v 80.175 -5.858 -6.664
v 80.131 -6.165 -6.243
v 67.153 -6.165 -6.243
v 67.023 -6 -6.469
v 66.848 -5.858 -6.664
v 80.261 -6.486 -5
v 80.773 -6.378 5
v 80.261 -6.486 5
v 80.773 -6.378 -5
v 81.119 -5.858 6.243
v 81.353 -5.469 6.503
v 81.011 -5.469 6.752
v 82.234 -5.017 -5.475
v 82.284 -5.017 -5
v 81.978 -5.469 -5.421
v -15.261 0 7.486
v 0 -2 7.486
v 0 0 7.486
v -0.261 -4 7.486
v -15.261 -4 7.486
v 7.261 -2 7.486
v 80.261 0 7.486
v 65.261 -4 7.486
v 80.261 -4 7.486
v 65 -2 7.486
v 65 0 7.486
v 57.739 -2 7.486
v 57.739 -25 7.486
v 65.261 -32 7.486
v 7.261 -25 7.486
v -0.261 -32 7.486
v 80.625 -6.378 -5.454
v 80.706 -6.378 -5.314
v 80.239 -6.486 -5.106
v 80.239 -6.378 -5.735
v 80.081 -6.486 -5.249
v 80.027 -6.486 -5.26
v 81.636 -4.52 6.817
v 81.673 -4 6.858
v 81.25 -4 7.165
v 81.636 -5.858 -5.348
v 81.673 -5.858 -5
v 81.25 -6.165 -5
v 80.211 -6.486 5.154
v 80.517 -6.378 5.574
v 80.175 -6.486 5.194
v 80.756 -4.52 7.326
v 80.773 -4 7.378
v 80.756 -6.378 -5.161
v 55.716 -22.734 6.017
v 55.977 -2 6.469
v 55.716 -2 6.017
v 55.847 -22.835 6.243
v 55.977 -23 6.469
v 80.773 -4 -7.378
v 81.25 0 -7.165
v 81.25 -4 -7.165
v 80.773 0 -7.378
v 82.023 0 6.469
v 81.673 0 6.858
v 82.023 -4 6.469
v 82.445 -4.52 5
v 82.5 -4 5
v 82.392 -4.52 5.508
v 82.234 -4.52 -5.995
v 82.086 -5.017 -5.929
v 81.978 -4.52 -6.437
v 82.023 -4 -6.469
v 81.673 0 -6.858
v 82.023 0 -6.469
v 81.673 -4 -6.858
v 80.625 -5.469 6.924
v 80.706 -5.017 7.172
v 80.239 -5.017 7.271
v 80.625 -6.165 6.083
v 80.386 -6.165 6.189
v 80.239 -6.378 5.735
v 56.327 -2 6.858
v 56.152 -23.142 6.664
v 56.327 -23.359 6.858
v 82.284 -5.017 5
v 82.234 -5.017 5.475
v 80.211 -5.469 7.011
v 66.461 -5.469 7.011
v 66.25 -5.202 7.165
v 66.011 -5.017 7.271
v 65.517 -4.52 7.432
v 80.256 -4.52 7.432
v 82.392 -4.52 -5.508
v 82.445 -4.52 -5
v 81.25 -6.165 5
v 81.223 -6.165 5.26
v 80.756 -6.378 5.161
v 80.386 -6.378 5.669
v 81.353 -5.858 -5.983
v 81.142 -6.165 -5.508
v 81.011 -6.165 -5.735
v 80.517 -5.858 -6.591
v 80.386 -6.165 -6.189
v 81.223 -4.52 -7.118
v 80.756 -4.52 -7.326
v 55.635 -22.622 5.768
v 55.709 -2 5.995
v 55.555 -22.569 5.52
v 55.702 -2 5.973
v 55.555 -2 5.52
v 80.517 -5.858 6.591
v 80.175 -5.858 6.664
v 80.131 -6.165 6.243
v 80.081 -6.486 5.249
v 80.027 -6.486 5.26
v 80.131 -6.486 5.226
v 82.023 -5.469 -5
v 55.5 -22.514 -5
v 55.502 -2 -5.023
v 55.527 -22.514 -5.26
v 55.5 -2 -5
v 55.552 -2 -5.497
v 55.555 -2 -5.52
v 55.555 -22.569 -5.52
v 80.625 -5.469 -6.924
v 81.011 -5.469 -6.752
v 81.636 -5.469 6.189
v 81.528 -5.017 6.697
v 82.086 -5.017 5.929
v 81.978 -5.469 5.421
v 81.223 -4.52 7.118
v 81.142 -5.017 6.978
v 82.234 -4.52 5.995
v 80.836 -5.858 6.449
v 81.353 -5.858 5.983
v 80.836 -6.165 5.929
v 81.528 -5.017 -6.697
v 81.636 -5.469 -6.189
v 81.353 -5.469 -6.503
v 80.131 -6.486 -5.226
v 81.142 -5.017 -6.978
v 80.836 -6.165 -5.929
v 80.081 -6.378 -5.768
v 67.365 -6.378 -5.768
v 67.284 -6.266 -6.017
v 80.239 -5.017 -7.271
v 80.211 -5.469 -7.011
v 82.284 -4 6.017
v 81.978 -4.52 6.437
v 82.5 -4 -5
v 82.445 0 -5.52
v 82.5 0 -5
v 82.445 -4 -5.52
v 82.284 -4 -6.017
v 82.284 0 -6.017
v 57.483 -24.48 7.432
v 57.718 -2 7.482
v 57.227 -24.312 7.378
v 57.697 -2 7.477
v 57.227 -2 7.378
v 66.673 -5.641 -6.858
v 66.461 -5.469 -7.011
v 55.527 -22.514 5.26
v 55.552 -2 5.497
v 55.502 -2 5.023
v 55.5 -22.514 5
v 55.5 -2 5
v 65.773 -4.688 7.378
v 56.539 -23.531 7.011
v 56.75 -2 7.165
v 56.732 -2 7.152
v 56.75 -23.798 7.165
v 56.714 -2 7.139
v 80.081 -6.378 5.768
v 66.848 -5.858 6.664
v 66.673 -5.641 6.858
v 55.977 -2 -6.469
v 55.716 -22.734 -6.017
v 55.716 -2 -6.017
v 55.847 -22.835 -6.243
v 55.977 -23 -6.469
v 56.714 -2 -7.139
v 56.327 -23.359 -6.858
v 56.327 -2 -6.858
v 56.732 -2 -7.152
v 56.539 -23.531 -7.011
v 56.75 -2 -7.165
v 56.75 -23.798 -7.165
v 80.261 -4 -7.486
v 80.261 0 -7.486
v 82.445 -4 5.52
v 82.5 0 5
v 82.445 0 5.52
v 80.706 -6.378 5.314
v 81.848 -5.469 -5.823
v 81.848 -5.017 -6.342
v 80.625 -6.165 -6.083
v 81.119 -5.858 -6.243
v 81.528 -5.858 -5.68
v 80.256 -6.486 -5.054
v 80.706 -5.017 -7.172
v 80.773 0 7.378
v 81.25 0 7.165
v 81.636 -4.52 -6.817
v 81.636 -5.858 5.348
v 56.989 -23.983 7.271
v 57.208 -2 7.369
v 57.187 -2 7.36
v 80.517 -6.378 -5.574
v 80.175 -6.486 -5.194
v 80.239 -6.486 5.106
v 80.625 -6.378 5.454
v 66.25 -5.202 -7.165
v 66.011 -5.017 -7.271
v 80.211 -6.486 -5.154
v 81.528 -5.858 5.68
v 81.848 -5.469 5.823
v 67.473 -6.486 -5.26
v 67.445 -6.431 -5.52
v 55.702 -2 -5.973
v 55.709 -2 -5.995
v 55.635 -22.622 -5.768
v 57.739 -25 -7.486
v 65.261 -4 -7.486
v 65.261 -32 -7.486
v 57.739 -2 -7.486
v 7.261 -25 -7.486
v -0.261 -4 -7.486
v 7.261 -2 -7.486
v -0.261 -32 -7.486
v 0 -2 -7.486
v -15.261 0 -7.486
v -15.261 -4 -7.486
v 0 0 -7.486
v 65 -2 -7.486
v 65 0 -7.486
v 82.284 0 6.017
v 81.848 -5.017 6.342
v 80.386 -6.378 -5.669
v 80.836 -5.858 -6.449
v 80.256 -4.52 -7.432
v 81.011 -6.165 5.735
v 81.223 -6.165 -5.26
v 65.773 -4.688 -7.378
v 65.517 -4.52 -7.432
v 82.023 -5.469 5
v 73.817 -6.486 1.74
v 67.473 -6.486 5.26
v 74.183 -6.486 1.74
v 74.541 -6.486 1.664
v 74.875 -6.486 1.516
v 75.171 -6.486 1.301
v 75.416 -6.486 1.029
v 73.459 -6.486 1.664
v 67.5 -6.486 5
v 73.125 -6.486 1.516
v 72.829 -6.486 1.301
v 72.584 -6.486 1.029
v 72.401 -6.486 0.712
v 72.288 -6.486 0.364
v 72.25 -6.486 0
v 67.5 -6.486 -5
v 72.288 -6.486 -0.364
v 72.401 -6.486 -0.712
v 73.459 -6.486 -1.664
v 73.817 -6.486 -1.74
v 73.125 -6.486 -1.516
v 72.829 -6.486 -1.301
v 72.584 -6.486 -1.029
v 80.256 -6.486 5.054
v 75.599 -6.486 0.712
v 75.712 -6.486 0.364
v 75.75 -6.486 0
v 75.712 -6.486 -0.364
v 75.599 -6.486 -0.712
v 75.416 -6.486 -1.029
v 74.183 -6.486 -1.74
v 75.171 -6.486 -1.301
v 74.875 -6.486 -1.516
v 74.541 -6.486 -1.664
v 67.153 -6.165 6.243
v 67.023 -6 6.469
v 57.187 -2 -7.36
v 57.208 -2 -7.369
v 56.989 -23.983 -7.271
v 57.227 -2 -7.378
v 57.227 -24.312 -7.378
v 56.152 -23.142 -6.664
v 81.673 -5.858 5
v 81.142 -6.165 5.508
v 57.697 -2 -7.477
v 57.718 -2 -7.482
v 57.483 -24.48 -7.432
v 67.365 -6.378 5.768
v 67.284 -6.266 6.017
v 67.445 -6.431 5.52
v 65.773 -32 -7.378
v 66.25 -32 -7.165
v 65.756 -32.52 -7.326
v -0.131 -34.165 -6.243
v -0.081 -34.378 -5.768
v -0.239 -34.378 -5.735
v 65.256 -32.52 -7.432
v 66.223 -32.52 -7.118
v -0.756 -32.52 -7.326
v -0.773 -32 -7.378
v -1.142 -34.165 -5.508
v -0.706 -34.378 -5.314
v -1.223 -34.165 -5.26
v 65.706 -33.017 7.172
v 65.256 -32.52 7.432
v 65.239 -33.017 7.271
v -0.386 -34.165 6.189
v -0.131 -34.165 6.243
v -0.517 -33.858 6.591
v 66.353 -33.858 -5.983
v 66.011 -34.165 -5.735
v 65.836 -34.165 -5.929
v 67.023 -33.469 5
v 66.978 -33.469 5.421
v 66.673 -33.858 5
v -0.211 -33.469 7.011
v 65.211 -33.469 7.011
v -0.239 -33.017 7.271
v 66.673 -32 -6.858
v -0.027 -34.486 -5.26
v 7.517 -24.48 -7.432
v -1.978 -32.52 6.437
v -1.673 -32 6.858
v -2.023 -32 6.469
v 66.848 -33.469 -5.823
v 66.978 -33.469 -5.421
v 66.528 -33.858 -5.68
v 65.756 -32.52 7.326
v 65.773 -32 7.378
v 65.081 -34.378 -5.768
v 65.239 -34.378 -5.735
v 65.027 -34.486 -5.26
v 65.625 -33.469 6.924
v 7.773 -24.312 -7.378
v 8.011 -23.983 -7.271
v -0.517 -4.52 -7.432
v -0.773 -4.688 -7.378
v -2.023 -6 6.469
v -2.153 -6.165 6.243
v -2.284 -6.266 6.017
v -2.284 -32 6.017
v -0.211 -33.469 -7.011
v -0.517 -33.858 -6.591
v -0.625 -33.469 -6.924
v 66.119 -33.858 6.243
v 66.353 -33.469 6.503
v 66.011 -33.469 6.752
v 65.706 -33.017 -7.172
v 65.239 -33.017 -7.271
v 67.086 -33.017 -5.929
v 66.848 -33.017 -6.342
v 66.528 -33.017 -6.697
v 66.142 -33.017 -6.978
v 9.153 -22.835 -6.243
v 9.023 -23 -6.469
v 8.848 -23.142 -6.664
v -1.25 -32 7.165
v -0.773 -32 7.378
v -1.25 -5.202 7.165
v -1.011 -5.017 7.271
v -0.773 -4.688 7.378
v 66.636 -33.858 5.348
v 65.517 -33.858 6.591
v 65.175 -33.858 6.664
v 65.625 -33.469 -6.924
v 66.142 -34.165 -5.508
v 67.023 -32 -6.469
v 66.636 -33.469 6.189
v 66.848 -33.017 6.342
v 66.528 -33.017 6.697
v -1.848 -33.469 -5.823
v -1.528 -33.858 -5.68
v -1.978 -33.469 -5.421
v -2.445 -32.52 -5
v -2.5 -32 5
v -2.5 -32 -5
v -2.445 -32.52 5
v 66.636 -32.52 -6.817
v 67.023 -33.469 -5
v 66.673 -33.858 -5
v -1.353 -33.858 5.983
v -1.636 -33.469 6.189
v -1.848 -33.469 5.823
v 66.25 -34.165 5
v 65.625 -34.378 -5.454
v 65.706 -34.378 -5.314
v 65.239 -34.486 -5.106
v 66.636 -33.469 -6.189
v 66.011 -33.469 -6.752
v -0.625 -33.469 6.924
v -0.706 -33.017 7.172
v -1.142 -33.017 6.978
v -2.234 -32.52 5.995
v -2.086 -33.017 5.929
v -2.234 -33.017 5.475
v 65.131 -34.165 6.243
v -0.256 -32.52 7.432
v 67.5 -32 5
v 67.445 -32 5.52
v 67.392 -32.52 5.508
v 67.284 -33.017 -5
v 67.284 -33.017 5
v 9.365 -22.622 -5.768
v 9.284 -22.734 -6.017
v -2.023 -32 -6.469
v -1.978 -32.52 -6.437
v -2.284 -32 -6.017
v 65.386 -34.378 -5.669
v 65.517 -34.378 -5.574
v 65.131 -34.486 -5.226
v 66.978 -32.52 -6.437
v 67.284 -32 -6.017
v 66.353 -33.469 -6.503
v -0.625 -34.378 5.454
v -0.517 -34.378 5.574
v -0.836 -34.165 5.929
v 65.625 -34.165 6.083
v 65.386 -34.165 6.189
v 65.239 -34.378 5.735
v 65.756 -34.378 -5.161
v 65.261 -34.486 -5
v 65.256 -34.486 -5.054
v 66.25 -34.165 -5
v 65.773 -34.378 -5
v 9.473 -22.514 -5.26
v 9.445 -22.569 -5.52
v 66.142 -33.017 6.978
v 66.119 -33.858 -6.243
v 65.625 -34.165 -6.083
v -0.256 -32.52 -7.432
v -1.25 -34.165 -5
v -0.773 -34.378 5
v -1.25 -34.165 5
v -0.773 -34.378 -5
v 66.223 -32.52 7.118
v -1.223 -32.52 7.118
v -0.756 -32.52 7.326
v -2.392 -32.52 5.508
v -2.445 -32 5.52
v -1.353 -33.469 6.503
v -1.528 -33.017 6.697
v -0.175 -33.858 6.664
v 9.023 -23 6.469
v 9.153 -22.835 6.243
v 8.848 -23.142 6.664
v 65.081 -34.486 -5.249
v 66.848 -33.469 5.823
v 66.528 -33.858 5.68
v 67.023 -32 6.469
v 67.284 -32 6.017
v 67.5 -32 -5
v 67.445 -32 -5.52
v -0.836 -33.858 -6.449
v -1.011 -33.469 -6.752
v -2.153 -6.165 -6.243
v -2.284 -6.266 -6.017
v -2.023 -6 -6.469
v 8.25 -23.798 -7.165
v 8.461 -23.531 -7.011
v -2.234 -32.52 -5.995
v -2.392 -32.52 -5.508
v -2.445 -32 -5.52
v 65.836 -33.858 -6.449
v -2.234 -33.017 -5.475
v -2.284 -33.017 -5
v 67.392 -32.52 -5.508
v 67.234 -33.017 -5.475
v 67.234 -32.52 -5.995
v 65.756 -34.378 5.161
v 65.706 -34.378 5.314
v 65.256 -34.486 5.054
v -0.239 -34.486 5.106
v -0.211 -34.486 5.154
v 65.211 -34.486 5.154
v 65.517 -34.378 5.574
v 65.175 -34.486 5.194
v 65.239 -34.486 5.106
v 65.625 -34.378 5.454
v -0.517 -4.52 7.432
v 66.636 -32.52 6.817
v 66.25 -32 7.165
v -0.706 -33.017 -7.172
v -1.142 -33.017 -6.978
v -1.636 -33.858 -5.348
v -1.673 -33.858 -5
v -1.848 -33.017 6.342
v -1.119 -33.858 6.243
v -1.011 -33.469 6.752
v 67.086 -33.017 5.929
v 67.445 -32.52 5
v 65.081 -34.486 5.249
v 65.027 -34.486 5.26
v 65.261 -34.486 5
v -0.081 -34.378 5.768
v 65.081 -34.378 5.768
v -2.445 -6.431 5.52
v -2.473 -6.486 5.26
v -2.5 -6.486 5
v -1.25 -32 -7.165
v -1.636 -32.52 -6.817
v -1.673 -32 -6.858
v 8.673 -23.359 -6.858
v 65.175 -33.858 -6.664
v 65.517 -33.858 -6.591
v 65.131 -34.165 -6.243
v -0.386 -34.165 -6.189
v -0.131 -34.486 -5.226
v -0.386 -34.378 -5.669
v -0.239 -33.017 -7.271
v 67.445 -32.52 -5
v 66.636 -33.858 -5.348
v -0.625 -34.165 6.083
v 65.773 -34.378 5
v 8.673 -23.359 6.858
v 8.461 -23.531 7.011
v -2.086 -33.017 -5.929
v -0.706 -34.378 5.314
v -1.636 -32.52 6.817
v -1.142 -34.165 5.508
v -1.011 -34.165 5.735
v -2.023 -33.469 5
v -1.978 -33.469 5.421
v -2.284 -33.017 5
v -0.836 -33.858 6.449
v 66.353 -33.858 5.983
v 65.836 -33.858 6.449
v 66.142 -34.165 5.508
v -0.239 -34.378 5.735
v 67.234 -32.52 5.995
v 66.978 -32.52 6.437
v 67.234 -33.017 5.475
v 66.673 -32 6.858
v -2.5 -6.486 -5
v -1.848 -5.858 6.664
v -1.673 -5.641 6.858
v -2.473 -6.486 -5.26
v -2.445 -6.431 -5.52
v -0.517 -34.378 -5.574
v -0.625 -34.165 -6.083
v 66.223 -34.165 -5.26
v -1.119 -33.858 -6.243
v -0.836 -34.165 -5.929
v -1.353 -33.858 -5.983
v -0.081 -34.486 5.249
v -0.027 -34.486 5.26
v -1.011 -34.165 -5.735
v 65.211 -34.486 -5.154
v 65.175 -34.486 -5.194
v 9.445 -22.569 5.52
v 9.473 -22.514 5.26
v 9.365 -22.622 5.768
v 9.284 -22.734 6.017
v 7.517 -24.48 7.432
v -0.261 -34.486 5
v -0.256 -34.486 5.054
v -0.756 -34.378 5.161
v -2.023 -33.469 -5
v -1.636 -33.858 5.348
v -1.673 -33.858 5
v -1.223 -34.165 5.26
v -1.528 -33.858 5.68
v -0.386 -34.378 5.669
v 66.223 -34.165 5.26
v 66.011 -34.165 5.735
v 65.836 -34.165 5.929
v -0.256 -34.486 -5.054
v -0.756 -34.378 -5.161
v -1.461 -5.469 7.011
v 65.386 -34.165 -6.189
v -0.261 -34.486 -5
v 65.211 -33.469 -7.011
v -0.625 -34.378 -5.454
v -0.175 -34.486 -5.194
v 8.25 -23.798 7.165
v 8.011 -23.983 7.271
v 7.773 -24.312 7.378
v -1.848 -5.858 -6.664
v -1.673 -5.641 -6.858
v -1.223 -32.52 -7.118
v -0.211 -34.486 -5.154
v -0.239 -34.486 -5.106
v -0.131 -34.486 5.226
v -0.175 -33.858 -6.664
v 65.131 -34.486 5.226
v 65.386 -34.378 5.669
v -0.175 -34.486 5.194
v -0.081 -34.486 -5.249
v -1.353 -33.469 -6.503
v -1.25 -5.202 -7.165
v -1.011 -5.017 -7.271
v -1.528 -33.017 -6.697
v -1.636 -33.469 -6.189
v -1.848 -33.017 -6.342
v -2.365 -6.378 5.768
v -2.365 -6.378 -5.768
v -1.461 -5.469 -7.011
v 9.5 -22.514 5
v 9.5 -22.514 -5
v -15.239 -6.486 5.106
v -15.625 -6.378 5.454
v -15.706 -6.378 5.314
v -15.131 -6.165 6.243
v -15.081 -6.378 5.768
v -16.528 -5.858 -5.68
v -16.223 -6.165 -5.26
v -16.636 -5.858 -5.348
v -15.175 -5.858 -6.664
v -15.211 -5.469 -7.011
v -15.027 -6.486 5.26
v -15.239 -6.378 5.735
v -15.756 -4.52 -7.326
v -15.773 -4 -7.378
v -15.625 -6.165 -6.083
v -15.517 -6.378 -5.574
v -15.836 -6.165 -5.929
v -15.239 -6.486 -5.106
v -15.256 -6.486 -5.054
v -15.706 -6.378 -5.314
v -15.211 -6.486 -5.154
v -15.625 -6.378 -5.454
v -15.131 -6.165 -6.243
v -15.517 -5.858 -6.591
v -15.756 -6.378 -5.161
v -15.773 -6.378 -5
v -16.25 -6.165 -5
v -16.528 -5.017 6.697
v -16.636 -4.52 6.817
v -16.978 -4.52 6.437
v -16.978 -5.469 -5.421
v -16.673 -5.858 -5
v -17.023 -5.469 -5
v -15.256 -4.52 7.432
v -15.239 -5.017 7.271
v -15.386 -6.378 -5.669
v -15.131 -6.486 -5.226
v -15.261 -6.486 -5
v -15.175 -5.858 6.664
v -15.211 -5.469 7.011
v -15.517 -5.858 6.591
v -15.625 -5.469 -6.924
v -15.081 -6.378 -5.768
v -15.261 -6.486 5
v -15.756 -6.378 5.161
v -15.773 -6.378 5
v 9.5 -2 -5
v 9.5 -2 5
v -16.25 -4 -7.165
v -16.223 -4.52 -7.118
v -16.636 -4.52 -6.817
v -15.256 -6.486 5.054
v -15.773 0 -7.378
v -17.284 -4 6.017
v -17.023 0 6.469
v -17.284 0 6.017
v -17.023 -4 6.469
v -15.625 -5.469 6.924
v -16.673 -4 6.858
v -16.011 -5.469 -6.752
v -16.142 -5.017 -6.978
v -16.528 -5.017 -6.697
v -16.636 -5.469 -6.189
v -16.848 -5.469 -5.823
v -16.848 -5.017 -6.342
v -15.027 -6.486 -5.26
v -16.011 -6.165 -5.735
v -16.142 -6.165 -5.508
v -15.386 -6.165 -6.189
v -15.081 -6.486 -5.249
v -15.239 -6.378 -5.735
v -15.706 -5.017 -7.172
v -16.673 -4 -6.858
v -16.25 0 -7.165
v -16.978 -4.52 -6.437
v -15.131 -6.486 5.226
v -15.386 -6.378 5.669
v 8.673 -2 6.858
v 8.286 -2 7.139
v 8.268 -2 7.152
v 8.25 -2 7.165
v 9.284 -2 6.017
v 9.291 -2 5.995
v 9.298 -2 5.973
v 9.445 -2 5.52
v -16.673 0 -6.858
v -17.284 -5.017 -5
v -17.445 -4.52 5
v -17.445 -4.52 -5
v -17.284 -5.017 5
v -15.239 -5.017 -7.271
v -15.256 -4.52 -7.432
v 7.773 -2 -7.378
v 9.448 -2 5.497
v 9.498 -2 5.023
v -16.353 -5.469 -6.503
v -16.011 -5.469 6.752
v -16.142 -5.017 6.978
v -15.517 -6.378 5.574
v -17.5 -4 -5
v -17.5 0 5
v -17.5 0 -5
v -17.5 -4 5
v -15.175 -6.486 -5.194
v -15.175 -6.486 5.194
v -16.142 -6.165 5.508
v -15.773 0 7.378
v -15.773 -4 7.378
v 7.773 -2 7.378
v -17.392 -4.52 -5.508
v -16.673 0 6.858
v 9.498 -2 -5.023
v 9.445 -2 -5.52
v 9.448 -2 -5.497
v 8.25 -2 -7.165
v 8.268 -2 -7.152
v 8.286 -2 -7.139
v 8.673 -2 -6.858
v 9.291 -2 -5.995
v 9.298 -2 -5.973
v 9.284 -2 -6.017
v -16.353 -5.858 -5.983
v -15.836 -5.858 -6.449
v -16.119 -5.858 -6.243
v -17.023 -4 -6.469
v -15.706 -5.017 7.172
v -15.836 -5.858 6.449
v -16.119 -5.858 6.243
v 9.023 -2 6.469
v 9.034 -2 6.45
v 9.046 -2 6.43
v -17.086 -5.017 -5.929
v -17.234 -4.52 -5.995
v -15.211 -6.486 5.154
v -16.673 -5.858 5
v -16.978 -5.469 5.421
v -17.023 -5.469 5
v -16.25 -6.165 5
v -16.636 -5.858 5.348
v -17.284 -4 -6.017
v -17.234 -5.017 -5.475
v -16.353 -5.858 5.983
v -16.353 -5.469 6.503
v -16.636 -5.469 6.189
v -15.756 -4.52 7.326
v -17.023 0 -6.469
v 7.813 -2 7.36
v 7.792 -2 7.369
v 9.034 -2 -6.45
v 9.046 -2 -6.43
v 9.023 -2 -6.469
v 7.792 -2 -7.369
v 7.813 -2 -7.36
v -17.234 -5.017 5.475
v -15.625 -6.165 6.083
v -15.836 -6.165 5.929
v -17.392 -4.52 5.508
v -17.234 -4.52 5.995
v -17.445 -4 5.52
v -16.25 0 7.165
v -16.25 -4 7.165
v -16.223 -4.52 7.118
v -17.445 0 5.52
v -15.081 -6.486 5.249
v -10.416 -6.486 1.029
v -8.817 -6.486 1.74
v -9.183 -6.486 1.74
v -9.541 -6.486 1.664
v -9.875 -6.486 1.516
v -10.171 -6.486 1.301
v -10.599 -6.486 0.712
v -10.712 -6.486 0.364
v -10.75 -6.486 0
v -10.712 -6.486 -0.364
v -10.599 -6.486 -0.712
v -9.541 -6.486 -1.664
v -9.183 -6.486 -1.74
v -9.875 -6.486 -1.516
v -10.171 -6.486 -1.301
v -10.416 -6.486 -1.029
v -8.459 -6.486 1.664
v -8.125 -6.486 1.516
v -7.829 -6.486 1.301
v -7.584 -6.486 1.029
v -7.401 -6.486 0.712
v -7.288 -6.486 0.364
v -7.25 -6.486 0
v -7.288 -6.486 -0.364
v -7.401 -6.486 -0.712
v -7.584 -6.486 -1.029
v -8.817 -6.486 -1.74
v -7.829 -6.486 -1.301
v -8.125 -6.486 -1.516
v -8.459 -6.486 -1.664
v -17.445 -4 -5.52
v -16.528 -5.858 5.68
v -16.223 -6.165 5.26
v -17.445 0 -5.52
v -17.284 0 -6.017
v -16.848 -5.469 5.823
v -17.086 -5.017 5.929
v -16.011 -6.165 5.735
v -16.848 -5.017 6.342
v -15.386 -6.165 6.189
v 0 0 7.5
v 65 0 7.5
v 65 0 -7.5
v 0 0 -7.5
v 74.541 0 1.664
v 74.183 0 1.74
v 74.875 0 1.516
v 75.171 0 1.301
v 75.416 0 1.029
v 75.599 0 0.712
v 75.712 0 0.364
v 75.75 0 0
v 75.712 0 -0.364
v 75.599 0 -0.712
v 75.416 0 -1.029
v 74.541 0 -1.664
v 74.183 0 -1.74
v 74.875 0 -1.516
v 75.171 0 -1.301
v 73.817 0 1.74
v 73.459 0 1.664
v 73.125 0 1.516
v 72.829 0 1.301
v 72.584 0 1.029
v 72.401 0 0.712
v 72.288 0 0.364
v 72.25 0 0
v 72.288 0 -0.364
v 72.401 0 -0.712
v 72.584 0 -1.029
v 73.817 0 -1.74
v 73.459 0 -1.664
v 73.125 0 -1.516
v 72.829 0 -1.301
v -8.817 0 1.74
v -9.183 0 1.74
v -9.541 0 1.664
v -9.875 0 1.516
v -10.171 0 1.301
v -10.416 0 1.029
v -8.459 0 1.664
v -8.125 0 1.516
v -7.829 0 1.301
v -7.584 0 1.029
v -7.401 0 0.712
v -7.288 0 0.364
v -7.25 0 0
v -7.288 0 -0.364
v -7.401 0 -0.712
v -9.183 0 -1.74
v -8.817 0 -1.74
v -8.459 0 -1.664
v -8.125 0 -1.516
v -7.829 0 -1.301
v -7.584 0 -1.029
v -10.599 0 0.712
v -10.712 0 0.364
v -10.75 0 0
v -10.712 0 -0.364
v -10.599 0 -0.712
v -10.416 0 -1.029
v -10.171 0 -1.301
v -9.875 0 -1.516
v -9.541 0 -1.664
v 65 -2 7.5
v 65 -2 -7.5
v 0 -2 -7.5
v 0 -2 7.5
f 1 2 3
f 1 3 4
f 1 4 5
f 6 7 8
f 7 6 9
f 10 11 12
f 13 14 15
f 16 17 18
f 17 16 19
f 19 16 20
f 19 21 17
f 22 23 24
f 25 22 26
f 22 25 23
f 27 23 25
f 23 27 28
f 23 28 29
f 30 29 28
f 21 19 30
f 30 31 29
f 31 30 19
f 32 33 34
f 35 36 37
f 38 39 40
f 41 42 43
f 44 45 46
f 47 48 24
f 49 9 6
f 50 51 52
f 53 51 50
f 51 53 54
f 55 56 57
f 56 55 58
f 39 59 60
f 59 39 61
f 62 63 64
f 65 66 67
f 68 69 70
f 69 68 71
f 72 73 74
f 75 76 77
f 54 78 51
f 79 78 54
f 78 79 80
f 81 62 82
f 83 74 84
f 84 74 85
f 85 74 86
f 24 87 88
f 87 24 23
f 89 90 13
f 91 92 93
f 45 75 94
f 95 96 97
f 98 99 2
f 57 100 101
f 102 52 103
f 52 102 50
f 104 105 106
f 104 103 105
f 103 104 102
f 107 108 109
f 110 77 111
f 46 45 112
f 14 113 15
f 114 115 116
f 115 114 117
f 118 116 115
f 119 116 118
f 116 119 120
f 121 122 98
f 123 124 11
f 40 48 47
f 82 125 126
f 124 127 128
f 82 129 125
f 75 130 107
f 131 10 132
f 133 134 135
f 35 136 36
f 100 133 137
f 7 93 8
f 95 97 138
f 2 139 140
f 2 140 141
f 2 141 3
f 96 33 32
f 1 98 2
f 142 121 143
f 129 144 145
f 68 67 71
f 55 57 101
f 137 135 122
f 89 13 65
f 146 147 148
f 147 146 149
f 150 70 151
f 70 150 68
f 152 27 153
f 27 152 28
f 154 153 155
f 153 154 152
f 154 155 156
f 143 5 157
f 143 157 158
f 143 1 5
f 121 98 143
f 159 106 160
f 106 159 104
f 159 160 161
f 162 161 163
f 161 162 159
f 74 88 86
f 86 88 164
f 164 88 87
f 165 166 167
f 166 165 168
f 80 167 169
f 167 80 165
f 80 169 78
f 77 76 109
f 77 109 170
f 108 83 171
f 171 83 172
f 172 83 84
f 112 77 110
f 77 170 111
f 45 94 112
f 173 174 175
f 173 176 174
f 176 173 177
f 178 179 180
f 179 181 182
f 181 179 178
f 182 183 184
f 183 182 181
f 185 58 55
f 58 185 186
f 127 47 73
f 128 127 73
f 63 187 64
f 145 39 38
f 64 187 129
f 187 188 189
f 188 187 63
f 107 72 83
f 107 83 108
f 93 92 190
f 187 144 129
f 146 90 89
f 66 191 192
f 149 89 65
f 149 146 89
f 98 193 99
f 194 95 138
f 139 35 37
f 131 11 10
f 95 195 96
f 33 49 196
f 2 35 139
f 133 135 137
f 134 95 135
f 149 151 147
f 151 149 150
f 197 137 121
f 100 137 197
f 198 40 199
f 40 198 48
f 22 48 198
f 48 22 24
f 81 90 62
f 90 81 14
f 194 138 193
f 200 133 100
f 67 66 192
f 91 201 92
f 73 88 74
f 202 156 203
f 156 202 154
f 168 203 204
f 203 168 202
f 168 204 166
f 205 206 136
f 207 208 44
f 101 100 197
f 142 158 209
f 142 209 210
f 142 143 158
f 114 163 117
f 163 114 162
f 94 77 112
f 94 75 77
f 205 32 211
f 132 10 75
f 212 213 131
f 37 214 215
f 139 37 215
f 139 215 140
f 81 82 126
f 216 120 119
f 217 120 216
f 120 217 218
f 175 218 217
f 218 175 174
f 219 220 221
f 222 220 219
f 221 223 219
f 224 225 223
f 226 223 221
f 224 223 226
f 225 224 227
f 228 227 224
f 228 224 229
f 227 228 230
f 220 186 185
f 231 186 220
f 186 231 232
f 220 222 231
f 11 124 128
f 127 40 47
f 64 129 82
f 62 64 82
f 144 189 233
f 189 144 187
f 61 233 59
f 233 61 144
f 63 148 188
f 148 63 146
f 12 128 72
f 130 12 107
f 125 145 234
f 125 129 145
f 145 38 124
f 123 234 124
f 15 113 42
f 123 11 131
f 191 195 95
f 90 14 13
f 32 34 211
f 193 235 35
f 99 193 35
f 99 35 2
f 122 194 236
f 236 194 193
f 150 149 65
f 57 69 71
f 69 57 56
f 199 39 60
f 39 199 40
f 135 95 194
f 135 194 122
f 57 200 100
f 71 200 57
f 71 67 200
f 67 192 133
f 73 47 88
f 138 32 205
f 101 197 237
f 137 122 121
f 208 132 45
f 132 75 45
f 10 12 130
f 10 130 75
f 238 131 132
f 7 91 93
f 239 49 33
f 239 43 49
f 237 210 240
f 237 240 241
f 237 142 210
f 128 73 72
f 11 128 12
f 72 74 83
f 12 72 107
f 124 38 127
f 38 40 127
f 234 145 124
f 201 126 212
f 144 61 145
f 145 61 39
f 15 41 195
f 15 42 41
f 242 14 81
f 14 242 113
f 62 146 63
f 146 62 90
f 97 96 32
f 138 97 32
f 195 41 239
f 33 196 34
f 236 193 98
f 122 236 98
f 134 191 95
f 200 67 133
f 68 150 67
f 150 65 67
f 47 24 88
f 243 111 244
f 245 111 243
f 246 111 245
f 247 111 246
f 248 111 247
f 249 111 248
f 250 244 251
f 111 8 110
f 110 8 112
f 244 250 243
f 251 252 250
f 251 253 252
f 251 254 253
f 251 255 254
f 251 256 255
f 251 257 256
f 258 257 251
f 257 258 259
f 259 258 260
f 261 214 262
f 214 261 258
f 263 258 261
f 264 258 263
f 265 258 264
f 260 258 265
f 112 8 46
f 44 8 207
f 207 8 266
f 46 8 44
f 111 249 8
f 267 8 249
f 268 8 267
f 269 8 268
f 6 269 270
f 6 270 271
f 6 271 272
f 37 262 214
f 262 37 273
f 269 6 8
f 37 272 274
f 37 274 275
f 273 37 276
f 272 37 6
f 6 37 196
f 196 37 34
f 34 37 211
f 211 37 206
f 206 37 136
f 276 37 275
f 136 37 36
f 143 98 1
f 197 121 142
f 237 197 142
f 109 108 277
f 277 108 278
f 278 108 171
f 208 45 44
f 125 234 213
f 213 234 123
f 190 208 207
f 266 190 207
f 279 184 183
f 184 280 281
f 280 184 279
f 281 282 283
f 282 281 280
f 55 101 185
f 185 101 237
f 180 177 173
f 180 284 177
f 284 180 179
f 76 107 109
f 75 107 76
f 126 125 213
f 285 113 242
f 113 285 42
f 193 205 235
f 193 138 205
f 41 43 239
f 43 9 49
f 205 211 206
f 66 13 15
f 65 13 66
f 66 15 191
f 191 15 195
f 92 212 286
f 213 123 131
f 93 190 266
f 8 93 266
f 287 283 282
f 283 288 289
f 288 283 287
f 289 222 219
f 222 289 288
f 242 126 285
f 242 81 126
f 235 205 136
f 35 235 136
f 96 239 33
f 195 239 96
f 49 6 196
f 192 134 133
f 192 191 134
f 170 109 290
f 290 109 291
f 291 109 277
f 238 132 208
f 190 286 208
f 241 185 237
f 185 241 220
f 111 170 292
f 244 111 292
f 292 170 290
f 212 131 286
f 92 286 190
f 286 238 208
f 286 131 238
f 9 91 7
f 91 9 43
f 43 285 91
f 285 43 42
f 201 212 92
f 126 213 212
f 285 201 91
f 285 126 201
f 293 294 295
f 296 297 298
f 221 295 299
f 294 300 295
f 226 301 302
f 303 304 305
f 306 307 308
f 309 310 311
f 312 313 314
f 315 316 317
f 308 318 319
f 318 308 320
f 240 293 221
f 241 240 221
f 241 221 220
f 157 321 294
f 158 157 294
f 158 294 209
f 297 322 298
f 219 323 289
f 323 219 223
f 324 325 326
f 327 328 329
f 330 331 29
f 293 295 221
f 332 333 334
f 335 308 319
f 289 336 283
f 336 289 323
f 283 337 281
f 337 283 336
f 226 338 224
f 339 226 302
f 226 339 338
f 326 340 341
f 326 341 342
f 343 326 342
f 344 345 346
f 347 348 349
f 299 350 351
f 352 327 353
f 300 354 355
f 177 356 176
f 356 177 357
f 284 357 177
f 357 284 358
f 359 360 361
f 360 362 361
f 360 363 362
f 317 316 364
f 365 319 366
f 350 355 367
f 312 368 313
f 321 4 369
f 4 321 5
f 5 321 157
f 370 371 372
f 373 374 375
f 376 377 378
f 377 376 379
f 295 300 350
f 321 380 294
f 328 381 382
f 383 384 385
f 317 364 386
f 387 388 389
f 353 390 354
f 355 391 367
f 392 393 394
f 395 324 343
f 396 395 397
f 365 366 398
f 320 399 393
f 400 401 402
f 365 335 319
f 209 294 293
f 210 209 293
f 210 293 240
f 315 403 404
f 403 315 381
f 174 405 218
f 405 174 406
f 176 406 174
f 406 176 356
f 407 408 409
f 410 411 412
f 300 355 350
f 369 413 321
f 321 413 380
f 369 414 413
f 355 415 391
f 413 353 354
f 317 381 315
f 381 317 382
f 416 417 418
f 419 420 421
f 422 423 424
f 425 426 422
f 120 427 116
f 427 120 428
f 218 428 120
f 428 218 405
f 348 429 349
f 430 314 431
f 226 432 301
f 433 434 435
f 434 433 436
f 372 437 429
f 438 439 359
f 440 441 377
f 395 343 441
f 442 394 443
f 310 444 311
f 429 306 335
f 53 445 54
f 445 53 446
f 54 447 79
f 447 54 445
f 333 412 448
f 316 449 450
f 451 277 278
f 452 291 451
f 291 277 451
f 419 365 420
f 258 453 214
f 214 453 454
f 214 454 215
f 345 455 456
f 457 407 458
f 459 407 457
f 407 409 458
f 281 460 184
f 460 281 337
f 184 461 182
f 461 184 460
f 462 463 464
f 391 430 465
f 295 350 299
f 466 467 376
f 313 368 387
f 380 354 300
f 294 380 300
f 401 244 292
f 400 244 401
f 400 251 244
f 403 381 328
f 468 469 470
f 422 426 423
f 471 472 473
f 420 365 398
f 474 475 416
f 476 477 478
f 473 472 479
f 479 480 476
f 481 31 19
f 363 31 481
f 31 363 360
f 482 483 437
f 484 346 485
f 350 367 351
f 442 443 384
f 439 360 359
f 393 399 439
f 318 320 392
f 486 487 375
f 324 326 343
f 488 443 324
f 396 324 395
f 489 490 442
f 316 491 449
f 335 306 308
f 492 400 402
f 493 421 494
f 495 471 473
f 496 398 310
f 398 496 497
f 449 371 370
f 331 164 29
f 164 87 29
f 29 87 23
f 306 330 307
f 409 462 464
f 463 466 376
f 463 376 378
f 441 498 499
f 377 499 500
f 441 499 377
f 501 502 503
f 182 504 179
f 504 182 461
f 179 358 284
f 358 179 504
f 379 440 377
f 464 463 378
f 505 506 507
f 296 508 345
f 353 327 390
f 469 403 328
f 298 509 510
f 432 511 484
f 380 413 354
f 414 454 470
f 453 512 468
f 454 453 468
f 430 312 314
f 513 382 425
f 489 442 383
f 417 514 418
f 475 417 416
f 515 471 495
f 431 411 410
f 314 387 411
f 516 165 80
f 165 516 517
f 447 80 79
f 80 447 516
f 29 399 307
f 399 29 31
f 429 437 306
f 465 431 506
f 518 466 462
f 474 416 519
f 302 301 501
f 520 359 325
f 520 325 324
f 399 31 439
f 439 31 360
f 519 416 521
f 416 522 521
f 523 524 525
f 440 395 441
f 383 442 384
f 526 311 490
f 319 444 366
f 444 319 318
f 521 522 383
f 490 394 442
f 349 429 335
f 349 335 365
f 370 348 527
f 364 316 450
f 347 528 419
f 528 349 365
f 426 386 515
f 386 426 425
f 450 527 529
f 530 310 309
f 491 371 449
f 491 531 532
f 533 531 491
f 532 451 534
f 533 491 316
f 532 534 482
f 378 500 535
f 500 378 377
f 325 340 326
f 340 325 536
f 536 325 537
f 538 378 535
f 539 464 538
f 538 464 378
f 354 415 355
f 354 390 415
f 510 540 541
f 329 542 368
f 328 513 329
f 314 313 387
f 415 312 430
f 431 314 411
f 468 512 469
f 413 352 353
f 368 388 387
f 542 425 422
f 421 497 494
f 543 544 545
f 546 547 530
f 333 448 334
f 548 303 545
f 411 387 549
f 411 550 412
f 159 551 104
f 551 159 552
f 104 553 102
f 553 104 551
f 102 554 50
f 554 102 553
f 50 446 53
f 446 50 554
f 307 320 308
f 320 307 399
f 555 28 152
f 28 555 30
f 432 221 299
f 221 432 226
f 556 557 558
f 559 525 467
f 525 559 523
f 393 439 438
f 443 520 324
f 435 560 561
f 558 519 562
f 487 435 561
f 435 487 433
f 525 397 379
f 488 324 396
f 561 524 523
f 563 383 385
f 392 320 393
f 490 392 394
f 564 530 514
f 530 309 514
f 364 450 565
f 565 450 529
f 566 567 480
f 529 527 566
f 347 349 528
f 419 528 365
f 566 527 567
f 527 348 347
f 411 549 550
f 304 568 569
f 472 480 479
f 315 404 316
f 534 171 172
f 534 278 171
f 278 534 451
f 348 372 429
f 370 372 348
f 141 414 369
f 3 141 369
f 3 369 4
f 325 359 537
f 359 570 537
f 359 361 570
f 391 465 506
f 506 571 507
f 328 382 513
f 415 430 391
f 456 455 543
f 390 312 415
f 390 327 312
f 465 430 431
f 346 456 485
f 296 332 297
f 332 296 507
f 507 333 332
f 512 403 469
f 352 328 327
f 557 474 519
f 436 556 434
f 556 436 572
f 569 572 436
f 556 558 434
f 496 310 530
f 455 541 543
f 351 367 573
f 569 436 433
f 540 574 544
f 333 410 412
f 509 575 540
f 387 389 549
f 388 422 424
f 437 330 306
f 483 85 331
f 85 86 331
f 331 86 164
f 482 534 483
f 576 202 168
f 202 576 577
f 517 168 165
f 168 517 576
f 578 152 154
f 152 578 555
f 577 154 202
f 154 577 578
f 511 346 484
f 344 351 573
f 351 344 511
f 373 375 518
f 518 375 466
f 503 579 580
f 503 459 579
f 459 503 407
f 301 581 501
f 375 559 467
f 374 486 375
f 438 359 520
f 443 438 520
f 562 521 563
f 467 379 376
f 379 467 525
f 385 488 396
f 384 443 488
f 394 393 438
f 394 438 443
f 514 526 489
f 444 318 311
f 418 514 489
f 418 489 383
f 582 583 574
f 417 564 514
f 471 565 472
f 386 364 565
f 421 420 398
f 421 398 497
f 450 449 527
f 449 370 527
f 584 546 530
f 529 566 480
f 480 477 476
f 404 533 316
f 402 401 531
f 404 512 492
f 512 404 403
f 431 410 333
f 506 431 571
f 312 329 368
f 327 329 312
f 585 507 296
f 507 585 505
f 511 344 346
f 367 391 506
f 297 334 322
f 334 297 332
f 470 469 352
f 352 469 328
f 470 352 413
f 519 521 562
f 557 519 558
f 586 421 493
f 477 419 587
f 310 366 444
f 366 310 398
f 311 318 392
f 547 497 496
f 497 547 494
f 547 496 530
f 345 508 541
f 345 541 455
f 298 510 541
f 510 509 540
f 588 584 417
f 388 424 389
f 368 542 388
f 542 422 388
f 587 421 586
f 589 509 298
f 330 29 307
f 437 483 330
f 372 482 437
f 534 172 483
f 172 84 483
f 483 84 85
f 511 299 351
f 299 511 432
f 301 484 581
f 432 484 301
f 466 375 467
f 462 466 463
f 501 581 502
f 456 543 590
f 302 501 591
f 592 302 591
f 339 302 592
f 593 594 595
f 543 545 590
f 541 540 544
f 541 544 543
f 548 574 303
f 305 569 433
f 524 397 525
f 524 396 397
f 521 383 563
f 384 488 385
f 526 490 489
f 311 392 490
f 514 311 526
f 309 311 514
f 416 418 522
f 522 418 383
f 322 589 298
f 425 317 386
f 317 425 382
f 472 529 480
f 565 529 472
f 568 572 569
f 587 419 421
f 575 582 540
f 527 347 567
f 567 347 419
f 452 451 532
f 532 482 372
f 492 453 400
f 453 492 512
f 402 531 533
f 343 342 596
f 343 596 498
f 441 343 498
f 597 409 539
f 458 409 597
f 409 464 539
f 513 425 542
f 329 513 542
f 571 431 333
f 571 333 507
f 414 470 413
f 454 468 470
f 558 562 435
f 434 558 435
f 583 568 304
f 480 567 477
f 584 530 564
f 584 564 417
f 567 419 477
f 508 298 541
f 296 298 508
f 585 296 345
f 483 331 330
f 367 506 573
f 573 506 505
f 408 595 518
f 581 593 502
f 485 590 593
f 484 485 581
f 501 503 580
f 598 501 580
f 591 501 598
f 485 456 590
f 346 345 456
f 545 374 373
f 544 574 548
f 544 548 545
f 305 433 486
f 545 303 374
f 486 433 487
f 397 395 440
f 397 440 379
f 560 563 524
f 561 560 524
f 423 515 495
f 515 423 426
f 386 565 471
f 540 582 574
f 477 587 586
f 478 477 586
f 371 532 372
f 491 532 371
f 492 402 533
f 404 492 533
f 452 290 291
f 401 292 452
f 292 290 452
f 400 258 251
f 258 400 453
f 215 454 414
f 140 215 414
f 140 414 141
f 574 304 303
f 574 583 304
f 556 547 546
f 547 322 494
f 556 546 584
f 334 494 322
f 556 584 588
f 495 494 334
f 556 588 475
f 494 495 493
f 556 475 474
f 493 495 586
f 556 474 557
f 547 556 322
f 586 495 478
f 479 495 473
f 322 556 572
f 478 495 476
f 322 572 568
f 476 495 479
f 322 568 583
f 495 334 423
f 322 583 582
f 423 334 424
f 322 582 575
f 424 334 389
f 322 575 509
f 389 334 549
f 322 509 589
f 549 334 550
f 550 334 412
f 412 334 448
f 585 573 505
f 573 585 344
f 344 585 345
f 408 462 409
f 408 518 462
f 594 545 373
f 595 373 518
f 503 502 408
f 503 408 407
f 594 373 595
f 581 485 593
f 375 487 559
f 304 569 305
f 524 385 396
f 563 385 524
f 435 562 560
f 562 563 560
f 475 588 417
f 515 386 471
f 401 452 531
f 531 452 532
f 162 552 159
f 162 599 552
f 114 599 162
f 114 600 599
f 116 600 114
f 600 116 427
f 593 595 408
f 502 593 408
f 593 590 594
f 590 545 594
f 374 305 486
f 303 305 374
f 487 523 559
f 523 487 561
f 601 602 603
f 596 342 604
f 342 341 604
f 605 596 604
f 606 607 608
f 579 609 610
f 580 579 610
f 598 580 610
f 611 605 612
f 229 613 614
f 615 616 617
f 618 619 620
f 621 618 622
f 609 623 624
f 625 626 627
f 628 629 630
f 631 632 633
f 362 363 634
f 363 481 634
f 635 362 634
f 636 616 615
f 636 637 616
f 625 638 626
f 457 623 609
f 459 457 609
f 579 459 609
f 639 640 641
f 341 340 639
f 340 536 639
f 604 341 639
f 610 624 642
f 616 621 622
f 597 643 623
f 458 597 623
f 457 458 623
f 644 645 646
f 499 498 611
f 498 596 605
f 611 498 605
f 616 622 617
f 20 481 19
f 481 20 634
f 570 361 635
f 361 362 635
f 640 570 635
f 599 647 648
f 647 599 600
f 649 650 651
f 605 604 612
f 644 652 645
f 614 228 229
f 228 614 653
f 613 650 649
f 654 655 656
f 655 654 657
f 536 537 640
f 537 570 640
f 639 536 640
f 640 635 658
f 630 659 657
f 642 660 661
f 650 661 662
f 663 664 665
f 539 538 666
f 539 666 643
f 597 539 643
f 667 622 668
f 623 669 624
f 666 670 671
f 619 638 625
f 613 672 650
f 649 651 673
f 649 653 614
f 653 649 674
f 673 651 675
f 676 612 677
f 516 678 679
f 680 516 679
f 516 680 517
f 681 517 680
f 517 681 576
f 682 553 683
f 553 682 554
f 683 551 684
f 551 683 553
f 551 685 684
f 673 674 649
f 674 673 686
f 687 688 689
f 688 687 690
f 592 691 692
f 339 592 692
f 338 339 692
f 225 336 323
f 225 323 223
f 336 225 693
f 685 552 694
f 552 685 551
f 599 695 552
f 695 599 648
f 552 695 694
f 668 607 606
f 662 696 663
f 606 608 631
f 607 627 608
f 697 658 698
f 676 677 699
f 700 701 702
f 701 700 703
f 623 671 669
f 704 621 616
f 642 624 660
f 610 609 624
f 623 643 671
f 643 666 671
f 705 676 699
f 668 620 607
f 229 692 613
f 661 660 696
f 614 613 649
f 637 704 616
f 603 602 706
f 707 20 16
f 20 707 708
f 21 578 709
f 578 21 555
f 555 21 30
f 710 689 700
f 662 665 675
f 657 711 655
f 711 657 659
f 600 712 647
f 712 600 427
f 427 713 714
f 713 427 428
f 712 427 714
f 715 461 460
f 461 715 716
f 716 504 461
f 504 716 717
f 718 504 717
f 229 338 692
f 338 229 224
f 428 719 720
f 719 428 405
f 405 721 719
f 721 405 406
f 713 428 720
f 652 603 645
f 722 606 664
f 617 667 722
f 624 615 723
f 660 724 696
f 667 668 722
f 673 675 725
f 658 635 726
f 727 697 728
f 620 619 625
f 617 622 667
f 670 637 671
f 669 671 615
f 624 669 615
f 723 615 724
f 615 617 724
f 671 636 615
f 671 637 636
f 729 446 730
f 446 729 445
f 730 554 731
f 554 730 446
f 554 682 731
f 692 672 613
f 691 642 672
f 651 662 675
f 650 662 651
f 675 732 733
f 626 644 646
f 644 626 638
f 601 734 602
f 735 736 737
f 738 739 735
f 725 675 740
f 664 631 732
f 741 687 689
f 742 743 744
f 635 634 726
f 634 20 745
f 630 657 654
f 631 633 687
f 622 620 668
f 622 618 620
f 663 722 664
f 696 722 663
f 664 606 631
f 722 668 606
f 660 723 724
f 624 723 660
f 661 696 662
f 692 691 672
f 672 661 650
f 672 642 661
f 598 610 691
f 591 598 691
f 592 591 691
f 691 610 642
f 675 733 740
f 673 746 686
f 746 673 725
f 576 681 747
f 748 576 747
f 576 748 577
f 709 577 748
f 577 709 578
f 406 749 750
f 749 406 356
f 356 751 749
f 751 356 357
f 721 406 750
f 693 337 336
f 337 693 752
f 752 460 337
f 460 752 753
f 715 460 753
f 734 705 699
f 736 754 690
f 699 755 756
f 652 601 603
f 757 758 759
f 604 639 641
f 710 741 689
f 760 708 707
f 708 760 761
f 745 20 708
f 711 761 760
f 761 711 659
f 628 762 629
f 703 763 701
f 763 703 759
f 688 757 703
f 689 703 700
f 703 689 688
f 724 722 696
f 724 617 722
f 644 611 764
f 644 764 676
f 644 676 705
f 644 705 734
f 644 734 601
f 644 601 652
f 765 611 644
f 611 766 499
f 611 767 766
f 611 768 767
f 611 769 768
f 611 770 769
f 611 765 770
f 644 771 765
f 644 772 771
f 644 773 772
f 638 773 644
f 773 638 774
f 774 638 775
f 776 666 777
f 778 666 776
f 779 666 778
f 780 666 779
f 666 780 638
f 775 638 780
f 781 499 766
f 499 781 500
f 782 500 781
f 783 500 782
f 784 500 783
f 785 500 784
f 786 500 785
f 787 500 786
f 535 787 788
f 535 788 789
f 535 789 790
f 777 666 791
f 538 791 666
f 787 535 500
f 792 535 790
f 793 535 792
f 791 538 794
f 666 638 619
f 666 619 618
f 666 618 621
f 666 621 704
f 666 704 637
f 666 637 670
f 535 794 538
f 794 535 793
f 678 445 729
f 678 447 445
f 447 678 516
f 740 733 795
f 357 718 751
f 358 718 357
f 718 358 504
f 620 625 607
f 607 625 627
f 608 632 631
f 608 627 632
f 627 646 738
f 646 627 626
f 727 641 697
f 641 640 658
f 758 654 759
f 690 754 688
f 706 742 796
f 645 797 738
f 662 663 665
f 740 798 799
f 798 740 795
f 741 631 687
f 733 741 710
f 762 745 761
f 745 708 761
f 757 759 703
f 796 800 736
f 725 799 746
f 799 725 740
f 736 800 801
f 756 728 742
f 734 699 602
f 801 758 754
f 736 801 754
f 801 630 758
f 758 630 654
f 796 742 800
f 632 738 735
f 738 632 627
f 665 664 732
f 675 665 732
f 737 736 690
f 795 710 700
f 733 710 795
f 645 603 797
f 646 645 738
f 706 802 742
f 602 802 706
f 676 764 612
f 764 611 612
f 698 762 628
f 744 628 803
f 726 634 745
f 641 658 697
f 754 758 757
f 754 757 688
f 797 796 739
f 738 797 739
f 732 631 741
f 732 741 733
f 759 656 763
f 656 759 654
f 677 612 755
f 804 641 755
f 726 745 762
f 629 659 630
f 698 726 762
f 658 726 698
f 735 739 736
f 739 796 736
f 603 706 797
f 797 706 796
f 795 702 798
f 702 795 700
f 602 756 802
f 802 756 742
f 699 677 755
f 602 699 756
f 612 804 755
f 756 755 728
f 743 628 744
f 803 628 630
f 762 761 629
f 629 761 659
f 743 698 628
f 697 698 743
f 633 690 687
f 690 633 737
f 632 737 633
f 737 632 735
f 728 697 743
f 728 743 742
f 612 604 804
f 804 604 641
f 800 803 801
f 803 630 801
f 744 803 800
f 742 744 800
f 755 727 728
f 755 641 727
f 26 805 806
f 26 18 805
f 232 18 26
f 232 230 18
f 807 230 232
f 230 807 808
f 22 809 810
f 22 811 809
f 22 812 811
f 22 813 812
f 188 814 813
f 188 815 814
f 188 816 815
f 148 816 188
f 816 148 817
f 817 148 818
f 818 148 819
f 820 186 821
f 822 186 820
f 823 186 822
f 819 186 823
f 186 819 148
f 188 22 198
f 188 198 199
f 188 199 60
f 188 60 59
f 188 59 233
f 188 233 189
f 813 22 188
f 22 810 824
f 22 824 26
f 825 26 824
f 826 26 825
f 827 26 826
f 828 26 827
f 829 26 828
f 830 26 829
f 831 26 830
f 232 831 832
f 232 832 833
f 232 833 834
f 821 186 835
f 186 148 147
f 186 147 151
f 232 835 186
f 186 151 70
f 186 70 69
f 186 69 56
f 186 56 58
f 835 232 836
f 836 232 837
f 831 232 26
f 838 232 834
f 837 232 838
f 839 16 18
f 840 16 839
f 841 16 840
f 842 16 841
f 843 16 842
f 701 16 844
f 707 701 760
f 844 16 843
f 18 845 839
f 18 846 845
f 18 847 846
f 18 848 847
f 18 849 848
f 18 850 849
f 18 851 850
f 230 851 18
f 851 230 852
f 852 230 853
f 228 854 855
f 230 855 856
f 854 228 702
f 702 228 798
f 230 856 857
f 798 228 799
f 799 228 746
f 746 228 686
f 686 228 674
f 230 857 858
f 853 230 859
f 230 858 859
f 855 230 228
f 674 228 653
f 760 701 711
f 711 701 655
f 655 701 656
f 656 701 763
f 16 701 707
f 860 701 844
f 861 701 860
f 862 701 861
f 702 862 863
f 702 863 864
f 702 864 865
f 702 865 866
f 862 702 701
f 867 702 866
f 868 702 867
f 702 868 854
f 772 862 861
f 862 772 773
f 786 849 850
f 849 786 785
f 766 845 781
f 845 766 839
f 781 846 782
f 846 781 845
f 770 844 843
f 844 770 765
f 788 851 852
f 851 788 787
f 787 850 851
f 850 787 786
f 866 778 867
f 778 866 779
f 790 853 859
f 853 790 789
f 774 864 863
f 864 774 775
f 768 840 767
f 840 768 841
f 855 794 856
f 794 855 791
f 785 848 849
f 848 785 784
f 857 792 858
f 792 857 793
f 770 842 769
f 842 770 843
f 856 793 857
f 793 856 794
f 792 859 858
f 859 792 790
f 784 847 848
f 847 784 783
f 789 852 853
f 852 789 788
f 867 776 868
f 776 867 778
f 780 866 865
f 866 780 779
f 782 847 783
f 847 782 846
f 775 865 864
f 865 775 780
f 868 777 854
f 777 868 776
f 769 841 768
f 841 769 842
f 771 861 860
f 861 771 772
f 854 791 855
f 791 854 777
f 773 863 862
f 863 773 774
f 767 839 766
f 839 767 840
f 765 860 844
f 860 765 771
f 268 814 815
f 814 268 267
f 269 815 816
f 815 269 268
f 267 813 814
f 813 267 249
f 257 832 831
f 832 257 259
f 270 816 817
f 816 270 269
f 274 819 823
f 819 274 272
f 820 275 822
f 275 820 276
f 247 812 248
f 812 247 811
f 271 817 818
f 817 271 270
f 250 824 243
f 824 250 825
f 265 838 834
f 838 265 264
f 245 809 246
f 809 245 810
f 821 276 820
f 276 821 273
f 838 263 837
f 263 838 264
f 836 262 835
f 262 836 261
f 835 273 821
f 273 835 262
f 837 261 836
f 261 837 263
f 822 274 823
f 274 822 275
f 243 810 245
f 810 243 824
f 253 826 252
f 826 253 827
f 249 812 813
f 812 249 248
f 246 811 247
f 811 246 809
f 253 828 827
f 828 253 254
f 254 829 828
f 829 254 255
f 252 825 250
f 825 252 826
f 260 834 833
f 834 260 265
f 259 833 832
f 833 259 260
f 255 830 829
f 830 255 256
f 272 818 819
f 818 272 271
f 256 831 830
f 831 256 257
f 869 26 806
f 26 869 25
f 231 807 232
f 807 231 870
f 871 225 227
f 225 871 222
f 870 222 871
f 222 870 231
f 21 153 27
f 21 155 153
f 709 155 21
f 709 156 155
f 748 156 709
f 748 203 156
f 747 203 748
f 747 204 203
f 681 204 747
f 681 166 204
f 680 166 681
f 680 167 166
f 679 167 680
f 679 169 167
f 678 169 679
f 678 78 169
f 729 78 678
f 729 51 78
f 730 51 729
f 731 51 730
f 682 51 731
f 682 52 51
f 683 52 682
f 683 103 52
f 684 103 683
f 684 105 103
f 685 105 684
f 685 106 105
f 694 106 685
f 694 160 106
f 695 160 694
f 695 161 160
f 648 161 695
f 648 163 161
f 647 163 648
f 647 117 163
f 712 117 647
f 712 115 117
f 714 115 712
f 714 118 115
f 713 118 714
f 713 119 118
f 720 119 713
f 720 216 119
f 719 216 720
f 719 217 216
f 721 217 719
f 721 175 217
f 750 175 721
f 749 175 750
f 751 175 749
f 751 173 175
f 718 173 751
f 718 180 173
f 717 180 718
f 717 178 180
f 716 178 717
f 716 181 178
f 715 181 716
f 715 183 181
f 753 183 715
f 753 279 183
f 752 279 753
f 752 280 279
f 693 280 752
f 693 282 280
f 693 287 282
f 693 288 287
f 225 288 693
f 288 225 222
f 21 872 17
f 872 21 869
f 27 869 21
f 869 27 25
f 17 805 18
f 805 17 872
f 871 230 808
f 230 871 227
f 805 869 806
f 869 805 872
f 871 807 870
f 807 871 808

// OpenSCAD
$fn = 30;

D = 10/2;

WIDTH0     = 15;
THICKNESS0 = 12;

WIDTH      = WIDTH0 - D;
THICKNESS  = THICKNESS0 - D;

DISTANCE  = 65;
HEIGHT    = 25;
EXTRA     = WIDTH0;

M         = 3.5;

module handle() {
    difference() {
        minkowski() {
            union() {
                union() {
                    translate([-EXTRA, -WIDTH/2, 0])
                    cube([EXTRA, WIDTH, THICKNESS0/3]);
                    translate([DISTANCE, -WIDTH/2, 0])
                    cube([EXTRA, WIDTH, THICKNESS0/3]);
                }
                hull() {
                    translate([0, -WIDTH/2, 0])
                    cube([THICKNESS, WIDTH, THICKNESS]);
                    
                    translate([0, -WIDTH/2, HEIGHT])
                    cube([THICKNESS, WIDTH, THICKNESS]);
                }

                hull() {
                    translate([0, -WIDTH/2, HEIGHT])
                    cube([THICKNESS, WIDTH, THICKNESS]);
                    translate([DISTANCE-THICKNESS, -WIDTH/2, HEIGHT])
                    cube([THICKNESS, WIDTH, THICKNESS]);
                }

                hull() {
                    translate([DISTANCE-THICKNESS, -WIDTH/2, HEIGHT])
                    cube([THICKNESS, WIDTH, THICKNESS]);
                    translate([DISTANCE-THICKNESS, -WIDTH/2, 0])
                    cube([THICKNESS, WIDTH, THICKNESS]);
                }
            }
            difference() {
                sphere(d=D);
                if(0)translate([0, 0, -D/2])
                cube(D, center=true);
            }
        }
        translate([-DISTANCE, -WIDTH-D, -D])
        cube([DISTANCE*3, WIDTH*2 + D*2, D]);
        
        translate([-EXTRA*.6, 0, 0])
        cylinder(d=M, h=THICKNESS+D);
        
        translate([DISTANCE + EXTRA*.6, 0, 0])
        cylinder(d=M, h=THICKNESS+D);
    }

    translate([0, -WIDTH0/2, 0])
    cube([DISTANCE, WIDTH0, 2]);
}


rotate([90, 0, 0])
handle();
